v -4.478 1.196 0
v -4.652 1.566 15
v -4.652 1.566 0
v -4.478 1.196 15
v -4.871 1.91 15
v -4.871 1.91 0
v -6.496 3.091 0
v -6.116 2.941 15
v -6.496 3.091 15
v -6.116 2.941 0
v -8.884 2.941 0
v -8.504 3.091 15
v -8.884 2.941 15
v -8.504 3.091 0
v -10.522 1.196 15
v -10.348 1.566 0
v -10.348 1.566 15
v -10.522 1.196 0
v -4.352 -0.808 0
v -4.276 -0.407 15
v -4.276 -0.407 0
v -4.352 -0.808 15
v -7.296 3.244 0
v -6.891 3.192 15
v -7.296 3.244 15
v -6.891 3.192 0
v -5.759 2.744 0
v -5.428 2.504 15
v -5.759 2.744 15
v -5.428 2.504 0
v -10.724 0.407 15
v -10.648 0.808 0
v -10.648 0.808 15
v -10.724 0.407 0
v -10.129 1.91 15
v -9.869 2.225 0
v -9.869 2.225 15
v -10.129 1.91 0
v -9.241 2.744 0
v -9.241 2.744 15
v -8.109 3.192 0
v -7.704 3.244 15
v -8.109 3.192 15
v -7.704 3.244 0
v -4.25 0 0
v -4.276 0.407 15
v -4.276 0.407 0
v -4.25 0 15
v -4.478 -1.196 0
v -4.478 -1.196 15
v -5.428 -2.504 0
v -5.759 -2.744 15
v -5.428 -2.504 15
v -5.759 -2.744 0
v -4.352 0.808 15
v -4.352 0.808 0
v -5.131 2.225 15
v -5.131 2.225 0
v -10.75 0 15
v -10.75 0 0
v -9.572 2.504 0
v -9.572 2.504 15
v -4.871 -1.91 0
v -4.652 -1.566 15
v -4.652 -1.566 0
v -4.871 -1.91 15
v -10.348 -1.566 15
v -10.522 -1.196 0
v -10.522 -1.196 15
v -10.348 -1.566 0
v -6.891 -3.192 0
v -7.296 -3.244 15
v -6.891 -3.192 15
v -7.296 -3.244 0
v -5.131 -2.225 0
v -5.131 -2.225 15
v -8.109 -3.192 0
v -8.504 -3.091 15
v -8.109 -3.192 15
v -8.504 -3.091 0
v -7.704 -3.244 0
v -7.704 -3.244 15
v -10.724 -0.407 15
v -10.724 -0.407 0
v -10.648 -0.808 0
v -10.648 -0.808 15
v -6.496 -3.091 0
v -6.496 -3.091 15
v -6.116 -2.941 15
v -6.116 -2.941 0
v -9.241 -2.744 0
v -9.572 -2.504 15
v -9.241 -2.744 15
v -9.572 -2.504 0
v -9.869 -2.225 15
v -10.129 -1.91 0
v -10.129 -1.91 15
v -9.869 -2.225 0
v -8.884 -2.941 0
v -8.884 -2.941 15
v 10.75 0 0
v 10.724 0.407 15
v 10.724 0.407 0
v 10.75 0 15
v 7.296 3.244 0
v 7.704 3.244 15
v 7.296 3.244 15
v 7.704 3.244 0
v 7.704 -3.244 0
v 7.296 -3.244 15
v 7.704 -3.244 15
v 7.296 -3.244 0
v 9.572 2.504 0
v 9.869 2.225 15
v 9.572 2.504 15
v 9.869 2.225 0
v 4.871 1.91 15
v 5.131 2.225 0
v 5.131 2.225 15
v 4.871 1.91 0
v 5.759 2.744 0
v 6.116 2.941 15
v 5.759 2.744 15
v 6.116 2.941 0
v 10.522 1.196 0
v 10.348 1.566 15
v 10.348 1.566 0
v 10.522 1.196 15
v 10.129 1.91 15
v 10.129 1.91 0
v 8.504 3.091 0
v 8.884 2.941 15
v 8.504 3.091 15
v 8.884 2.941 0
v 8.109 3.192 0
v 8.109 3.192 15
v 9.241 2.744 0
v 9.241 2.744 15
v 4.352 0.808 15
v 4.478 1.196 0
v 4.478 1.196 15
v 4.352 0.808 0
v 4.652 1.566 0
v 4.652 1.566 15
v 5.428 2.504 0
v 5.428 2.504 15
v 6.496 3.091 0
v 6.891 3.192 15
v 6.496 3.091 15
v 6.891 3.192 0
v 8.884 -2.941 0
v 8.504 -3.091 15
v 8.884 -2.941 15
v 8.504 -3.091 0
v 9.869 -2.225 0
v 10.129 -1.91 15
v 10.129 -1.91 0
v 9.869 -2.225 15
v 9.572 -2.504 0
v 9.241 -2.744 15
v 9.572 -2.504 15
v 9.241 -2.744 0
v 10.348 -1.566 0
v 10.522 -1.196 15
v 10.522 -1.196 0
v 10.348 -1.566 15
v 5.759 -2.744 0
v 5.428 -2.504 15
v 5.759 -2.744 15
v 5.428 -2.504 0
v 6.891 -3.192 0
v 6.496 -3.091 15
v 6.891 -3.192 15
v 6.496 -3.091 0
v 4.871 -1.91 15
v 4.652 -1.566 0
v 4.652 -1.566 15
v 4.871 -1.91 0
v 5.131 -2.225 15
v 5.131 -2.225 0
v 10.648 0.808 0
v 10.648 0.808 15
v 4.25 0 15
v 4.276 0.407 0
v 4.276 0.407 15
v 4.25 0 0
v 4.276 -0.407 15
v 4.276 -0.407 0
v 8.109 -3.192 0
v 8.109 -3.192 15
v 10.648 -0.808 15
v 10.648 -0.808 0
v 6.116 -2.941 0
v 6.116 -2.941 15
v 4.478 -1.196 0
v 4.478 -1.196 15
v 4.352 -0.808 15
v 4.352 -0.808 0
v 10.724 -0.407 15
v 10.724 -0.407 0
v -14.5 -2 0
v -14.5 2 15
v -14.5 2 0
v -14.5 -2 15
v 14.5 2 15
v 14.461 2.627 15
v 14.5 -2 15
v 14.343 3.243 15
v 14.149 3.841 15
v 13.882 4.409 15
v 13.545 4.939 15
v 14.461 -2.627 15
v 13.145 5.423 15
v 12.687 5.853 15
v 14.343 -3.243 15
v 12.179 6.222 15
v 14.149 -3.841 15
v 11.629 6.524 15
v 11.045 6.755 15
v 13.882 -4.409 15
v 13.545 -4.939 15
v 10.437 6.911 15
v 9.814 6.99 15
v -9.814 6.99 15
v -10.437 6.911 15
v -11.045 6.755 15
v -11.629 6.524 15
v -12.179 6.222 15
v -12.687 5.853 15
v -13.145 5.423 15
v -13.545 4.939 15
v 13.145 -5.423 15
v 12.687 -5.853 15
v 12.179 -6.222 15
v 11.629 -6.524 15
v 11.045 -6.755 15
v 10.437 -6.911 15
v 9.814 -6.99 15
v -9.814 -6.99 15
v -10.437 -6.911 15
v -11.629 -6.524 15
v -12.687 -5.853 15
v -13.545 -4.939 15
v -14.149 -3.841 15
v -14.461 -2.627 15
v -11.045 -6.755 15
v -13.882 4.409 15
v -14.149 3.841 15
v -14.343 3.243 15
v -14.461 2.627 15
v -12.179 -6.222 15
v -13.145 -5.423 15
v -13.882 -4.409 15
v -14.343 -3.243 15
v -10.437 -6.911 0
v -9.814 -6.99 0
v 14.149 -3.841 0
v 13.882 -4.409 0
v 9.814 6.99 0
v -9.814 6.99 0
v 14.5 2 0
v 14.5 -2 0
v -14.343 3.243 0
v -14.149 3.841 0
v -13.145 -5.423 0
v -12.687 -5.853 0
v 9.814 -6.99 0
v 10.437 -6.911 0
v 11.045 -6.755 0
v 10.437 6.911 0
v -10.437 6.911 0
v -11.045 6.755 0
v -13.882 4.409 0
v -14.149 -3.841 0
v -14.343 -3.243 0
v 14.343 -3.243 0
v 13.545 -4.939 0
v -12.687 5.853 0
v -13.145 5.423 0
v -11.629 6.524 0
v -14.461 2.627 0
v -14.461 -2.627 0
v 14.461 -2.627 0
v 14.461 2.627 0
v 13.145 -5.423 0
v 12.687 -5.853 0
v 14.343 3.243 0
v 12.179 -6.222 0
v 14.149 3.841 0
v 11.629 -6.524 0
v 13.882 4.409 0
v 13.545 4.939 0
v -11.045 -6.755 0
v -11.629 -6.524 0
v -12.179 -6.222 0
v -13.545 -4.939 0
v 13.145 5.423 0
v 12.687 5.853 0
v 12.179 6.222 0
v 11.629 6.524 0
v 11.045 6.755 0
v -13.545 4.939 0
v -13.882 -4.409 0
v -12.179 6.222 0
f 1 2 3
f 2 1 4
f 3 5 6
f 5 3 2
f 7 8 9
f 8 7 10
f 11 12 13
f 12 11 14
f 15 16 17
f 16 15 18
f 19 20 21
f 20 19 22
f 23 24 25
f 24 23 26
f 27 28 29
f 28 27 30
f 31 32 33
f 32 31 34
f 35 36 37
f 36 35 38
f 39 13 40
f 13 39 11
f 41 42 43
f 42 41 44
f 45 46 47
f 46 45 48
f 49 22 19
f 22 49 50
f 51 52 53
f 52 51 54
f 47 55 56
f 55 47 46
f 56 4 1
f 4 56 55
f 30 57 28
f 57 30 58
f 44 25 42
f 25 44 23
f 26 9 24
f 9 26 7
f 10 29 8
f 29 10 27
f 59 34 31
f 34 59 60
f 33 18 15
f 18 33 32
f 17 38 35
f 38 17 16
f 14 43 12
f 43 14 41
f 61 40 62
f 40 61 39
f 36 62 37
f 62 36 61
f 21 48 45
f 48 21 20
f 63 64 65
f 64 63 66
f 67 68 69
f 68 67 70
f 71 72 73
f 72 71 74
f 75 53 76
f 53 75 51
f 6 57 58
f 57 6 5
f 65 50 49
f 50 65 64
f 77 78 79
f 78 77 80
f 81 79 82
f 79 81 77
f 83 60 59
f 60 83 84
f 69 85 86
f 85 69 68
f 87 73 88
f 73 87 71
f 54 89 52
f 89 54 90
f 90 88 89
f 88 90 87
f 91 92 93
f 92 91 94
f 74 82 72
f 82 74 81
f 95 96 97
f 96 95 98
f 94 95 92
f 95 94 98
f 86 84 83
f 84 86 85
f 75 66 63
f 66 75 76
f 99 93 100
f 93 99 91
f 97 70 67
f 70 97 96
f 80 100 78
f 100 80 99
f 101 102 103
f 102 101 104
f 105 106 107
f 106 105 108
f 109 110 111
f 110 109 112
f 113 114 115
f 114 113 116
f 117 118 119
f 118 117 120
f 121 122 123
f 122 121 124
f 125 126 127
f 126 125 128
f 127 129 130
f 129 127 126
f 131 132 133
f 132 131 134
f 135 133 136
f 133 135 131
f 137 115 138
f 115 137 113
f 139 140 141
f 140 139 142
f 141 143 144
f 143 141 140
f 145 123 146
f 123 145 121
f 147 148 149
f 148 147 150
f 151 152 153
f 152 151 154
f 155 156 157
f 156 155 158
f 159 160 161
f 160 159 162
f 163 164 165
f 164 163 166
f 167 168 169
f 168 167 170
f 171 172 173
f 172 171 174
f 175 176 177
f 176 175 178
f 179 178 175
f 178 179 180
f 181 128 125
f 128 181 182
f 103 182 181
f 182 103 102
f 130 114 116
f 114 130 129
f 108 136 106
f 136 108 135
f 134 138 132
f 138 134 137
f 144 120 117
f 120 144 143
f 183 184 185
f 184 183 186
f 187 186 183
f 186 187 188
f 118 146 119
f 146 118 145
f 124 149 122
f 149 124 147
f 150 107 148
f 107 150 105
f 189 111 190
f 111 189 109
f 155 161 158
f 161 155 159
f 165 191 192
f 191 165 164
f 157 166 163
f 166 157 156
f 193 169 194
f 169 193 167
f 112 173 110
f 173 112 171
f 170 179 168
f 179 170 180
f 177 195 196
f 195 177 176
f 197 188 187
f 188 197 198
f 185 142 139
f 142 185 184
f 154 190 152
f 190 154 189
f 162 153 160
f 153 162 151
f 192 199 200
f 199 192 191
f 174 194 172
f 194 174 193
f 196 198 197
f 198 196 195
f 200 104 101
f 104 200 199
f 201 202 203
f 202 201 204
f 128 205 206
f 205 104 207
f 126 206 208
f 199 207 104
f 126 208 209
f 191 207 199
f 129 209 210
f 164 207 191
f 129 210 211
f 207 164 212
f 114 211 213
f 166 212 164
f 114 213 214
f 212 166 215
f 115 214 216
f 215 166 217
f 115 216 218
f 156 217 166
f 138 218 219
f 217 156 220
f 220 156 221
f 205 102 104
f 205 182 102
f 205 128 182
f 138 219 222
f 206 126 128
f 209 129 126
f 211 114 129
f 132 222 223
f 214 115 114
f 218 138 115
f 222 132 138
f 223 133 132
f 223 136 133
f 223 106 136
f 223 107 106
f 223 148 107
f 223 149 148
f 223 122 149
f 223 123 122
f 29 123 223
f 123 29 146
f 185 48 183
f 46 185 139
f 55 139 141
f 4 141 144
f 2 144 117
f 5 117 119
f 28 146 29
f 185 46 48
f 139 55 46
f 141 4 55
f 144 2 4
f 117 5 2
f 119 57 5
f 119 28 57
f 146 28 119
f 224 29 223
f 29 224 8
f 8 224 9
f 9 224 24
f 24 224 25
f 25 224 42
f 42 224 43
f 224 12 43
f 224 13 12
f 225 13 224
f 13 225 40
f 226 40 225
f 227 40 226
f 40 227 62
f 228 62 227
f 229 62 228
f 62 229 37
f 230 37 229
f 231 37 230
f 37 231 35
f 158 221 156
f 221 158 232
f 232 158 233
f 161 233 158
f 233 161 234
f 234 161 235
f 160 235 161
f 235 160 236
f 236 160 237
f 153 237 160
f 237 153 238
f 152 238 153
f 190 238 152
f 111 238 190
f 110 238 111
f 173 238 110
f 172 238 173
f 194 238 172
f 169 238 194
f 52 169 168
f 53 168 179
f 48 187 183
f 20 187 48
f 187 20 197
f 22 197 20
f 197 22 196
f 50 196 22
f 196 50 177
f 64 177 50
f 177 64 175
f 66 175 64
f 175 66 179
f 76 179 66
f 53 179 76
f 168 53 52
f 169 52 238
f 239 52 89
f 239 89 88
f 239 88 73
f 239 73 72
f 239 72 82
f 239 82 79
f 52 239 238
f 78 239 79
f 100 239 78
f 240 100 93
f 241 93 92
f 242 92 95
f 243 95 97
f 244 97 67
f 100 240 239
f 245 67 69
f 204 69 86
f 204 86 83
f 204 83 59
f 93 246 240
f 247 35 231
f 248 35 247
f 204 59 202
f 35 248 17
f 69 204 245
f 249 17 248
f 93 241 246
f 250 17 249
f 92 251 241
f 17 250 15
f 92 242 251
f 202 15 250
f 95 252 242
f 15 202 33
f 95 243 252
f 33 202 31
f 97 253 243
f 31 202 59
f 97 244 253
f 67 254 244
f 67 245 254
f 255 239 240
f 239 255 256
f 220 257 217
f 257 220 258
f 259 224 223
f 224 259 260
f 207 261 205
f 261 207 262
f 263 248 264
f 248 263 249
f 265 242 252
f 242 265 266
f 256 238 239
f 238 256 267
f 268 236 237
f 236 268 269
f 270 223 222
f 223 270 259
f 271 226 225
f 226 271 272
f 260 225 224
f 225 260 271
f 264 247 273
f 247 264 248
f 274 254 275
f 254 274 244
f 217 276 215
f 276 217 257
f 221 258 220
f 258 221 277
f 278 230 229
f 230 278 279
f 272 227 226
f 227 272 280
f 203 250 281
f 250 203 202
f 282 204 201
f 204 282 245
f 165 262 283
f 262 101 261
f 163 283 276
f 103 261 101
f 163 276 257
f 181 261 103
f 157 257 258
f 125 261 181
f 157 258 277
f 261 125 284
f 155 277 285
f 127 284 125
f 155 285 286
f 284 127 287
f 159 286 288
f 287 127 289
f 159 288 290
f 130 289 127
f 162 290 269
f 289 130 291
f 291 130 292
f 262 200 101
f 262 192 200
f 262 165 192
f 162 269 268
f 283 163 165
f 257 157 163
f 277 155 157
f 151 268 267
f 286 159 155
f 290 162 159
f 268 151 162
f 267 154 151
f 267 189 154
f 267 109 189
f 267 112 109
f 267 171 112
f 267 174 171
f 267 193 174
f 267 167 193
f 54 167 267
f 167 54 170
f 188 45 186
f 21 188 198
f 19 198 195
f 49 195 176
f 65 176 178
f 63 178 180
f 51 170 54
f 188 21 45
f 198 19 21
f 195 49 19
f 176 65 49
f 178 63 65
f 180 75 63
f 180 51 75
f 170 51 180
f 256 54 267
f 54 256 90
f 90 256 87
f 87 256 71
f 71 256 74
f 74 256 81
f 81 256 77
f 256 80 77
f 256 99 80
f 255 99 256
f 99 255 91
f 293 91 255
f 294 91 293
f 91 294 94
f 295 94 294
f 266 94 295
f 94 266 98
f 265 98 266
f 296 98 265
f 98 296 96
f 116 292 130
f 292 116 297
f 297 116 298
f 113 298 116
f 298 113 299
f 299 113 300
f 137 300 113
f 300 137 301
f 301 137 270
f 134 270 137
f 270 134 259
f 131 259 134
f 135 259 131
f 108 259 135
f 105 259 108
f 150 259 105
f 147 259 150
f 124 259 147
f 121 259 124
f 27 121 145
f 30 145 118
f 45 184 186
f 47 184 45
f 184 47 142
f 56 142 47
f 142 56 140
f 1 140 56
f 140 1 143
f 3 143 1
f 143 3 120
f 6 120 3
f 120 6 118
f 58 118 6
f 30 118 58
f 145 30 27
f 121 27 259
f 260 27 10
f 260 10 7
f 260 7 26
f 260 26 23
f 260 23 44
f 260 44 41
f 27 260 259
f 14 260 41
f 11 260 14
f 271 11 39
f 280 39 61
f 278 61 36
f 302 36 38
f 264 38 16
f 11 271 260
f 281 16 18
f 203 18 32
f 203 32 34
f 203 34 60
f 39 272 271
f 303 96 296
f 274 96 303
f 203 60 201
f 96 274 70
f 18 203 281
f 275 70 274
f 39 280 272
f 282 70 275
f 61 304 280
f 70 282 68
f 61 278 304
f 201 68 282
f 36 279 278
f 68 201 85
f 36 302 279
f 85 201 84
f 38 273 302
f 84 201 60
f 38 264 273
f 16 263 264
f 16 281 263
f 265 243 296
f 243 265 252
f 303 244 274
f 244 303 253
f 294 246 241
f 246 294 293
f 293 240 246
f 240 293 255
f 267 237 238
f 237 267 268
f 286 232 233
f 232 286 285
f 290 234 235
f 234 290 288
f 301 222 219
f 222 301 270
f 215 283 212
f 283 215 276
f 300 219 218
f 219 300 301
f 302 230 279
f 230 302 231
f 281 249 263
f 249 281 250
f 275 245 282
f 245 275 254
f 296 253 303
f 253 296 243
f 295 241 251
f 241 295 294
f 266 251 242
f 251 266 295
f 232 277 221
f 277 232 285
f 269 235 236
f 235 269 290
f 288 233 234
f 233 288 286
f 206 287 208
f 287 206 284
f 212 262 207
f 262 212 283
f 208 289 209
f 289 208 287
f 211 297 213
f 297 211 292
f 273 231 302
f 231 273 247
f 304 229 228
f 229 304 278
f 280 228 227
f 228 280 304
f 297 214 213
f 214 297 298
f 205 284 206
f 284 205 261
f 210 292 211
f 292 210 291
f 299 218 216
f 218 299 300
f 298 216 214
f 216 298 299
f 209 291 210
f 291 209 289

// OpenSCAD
$fn = 50;


difference() {
	union() {
		hull() {
			translate(v = [-9.5000000000, 2.0000000000, 0]) {
				cylinder(h = 15, r = 5);
			}
			translate(v = [9.5000000000, 2.0000000000, 0]) {
				cylinder(h = 15, r = 5);
			}
			translate(v = [-9.5000000000, -2.0000000000, 0]) {
				cylinder(h = 15, r = 5);
			}
			translate(v = [9.5000000000, -2.0000000000, 0]) {
				cylinder(h = 15, r = 5);
			}
		}
	}
	union() {
		translate(v = [-7.5000000000, 0.0000000000, -100.0000000000]) {
			cylinder(h = 200, r = 3.2500000000);
		}
		translate(v = [7.5000000000, 0.0000000000, -100.0000000000]) {
			cylinder(h = 200, r = 3.2500000000);
		}
	}
}
